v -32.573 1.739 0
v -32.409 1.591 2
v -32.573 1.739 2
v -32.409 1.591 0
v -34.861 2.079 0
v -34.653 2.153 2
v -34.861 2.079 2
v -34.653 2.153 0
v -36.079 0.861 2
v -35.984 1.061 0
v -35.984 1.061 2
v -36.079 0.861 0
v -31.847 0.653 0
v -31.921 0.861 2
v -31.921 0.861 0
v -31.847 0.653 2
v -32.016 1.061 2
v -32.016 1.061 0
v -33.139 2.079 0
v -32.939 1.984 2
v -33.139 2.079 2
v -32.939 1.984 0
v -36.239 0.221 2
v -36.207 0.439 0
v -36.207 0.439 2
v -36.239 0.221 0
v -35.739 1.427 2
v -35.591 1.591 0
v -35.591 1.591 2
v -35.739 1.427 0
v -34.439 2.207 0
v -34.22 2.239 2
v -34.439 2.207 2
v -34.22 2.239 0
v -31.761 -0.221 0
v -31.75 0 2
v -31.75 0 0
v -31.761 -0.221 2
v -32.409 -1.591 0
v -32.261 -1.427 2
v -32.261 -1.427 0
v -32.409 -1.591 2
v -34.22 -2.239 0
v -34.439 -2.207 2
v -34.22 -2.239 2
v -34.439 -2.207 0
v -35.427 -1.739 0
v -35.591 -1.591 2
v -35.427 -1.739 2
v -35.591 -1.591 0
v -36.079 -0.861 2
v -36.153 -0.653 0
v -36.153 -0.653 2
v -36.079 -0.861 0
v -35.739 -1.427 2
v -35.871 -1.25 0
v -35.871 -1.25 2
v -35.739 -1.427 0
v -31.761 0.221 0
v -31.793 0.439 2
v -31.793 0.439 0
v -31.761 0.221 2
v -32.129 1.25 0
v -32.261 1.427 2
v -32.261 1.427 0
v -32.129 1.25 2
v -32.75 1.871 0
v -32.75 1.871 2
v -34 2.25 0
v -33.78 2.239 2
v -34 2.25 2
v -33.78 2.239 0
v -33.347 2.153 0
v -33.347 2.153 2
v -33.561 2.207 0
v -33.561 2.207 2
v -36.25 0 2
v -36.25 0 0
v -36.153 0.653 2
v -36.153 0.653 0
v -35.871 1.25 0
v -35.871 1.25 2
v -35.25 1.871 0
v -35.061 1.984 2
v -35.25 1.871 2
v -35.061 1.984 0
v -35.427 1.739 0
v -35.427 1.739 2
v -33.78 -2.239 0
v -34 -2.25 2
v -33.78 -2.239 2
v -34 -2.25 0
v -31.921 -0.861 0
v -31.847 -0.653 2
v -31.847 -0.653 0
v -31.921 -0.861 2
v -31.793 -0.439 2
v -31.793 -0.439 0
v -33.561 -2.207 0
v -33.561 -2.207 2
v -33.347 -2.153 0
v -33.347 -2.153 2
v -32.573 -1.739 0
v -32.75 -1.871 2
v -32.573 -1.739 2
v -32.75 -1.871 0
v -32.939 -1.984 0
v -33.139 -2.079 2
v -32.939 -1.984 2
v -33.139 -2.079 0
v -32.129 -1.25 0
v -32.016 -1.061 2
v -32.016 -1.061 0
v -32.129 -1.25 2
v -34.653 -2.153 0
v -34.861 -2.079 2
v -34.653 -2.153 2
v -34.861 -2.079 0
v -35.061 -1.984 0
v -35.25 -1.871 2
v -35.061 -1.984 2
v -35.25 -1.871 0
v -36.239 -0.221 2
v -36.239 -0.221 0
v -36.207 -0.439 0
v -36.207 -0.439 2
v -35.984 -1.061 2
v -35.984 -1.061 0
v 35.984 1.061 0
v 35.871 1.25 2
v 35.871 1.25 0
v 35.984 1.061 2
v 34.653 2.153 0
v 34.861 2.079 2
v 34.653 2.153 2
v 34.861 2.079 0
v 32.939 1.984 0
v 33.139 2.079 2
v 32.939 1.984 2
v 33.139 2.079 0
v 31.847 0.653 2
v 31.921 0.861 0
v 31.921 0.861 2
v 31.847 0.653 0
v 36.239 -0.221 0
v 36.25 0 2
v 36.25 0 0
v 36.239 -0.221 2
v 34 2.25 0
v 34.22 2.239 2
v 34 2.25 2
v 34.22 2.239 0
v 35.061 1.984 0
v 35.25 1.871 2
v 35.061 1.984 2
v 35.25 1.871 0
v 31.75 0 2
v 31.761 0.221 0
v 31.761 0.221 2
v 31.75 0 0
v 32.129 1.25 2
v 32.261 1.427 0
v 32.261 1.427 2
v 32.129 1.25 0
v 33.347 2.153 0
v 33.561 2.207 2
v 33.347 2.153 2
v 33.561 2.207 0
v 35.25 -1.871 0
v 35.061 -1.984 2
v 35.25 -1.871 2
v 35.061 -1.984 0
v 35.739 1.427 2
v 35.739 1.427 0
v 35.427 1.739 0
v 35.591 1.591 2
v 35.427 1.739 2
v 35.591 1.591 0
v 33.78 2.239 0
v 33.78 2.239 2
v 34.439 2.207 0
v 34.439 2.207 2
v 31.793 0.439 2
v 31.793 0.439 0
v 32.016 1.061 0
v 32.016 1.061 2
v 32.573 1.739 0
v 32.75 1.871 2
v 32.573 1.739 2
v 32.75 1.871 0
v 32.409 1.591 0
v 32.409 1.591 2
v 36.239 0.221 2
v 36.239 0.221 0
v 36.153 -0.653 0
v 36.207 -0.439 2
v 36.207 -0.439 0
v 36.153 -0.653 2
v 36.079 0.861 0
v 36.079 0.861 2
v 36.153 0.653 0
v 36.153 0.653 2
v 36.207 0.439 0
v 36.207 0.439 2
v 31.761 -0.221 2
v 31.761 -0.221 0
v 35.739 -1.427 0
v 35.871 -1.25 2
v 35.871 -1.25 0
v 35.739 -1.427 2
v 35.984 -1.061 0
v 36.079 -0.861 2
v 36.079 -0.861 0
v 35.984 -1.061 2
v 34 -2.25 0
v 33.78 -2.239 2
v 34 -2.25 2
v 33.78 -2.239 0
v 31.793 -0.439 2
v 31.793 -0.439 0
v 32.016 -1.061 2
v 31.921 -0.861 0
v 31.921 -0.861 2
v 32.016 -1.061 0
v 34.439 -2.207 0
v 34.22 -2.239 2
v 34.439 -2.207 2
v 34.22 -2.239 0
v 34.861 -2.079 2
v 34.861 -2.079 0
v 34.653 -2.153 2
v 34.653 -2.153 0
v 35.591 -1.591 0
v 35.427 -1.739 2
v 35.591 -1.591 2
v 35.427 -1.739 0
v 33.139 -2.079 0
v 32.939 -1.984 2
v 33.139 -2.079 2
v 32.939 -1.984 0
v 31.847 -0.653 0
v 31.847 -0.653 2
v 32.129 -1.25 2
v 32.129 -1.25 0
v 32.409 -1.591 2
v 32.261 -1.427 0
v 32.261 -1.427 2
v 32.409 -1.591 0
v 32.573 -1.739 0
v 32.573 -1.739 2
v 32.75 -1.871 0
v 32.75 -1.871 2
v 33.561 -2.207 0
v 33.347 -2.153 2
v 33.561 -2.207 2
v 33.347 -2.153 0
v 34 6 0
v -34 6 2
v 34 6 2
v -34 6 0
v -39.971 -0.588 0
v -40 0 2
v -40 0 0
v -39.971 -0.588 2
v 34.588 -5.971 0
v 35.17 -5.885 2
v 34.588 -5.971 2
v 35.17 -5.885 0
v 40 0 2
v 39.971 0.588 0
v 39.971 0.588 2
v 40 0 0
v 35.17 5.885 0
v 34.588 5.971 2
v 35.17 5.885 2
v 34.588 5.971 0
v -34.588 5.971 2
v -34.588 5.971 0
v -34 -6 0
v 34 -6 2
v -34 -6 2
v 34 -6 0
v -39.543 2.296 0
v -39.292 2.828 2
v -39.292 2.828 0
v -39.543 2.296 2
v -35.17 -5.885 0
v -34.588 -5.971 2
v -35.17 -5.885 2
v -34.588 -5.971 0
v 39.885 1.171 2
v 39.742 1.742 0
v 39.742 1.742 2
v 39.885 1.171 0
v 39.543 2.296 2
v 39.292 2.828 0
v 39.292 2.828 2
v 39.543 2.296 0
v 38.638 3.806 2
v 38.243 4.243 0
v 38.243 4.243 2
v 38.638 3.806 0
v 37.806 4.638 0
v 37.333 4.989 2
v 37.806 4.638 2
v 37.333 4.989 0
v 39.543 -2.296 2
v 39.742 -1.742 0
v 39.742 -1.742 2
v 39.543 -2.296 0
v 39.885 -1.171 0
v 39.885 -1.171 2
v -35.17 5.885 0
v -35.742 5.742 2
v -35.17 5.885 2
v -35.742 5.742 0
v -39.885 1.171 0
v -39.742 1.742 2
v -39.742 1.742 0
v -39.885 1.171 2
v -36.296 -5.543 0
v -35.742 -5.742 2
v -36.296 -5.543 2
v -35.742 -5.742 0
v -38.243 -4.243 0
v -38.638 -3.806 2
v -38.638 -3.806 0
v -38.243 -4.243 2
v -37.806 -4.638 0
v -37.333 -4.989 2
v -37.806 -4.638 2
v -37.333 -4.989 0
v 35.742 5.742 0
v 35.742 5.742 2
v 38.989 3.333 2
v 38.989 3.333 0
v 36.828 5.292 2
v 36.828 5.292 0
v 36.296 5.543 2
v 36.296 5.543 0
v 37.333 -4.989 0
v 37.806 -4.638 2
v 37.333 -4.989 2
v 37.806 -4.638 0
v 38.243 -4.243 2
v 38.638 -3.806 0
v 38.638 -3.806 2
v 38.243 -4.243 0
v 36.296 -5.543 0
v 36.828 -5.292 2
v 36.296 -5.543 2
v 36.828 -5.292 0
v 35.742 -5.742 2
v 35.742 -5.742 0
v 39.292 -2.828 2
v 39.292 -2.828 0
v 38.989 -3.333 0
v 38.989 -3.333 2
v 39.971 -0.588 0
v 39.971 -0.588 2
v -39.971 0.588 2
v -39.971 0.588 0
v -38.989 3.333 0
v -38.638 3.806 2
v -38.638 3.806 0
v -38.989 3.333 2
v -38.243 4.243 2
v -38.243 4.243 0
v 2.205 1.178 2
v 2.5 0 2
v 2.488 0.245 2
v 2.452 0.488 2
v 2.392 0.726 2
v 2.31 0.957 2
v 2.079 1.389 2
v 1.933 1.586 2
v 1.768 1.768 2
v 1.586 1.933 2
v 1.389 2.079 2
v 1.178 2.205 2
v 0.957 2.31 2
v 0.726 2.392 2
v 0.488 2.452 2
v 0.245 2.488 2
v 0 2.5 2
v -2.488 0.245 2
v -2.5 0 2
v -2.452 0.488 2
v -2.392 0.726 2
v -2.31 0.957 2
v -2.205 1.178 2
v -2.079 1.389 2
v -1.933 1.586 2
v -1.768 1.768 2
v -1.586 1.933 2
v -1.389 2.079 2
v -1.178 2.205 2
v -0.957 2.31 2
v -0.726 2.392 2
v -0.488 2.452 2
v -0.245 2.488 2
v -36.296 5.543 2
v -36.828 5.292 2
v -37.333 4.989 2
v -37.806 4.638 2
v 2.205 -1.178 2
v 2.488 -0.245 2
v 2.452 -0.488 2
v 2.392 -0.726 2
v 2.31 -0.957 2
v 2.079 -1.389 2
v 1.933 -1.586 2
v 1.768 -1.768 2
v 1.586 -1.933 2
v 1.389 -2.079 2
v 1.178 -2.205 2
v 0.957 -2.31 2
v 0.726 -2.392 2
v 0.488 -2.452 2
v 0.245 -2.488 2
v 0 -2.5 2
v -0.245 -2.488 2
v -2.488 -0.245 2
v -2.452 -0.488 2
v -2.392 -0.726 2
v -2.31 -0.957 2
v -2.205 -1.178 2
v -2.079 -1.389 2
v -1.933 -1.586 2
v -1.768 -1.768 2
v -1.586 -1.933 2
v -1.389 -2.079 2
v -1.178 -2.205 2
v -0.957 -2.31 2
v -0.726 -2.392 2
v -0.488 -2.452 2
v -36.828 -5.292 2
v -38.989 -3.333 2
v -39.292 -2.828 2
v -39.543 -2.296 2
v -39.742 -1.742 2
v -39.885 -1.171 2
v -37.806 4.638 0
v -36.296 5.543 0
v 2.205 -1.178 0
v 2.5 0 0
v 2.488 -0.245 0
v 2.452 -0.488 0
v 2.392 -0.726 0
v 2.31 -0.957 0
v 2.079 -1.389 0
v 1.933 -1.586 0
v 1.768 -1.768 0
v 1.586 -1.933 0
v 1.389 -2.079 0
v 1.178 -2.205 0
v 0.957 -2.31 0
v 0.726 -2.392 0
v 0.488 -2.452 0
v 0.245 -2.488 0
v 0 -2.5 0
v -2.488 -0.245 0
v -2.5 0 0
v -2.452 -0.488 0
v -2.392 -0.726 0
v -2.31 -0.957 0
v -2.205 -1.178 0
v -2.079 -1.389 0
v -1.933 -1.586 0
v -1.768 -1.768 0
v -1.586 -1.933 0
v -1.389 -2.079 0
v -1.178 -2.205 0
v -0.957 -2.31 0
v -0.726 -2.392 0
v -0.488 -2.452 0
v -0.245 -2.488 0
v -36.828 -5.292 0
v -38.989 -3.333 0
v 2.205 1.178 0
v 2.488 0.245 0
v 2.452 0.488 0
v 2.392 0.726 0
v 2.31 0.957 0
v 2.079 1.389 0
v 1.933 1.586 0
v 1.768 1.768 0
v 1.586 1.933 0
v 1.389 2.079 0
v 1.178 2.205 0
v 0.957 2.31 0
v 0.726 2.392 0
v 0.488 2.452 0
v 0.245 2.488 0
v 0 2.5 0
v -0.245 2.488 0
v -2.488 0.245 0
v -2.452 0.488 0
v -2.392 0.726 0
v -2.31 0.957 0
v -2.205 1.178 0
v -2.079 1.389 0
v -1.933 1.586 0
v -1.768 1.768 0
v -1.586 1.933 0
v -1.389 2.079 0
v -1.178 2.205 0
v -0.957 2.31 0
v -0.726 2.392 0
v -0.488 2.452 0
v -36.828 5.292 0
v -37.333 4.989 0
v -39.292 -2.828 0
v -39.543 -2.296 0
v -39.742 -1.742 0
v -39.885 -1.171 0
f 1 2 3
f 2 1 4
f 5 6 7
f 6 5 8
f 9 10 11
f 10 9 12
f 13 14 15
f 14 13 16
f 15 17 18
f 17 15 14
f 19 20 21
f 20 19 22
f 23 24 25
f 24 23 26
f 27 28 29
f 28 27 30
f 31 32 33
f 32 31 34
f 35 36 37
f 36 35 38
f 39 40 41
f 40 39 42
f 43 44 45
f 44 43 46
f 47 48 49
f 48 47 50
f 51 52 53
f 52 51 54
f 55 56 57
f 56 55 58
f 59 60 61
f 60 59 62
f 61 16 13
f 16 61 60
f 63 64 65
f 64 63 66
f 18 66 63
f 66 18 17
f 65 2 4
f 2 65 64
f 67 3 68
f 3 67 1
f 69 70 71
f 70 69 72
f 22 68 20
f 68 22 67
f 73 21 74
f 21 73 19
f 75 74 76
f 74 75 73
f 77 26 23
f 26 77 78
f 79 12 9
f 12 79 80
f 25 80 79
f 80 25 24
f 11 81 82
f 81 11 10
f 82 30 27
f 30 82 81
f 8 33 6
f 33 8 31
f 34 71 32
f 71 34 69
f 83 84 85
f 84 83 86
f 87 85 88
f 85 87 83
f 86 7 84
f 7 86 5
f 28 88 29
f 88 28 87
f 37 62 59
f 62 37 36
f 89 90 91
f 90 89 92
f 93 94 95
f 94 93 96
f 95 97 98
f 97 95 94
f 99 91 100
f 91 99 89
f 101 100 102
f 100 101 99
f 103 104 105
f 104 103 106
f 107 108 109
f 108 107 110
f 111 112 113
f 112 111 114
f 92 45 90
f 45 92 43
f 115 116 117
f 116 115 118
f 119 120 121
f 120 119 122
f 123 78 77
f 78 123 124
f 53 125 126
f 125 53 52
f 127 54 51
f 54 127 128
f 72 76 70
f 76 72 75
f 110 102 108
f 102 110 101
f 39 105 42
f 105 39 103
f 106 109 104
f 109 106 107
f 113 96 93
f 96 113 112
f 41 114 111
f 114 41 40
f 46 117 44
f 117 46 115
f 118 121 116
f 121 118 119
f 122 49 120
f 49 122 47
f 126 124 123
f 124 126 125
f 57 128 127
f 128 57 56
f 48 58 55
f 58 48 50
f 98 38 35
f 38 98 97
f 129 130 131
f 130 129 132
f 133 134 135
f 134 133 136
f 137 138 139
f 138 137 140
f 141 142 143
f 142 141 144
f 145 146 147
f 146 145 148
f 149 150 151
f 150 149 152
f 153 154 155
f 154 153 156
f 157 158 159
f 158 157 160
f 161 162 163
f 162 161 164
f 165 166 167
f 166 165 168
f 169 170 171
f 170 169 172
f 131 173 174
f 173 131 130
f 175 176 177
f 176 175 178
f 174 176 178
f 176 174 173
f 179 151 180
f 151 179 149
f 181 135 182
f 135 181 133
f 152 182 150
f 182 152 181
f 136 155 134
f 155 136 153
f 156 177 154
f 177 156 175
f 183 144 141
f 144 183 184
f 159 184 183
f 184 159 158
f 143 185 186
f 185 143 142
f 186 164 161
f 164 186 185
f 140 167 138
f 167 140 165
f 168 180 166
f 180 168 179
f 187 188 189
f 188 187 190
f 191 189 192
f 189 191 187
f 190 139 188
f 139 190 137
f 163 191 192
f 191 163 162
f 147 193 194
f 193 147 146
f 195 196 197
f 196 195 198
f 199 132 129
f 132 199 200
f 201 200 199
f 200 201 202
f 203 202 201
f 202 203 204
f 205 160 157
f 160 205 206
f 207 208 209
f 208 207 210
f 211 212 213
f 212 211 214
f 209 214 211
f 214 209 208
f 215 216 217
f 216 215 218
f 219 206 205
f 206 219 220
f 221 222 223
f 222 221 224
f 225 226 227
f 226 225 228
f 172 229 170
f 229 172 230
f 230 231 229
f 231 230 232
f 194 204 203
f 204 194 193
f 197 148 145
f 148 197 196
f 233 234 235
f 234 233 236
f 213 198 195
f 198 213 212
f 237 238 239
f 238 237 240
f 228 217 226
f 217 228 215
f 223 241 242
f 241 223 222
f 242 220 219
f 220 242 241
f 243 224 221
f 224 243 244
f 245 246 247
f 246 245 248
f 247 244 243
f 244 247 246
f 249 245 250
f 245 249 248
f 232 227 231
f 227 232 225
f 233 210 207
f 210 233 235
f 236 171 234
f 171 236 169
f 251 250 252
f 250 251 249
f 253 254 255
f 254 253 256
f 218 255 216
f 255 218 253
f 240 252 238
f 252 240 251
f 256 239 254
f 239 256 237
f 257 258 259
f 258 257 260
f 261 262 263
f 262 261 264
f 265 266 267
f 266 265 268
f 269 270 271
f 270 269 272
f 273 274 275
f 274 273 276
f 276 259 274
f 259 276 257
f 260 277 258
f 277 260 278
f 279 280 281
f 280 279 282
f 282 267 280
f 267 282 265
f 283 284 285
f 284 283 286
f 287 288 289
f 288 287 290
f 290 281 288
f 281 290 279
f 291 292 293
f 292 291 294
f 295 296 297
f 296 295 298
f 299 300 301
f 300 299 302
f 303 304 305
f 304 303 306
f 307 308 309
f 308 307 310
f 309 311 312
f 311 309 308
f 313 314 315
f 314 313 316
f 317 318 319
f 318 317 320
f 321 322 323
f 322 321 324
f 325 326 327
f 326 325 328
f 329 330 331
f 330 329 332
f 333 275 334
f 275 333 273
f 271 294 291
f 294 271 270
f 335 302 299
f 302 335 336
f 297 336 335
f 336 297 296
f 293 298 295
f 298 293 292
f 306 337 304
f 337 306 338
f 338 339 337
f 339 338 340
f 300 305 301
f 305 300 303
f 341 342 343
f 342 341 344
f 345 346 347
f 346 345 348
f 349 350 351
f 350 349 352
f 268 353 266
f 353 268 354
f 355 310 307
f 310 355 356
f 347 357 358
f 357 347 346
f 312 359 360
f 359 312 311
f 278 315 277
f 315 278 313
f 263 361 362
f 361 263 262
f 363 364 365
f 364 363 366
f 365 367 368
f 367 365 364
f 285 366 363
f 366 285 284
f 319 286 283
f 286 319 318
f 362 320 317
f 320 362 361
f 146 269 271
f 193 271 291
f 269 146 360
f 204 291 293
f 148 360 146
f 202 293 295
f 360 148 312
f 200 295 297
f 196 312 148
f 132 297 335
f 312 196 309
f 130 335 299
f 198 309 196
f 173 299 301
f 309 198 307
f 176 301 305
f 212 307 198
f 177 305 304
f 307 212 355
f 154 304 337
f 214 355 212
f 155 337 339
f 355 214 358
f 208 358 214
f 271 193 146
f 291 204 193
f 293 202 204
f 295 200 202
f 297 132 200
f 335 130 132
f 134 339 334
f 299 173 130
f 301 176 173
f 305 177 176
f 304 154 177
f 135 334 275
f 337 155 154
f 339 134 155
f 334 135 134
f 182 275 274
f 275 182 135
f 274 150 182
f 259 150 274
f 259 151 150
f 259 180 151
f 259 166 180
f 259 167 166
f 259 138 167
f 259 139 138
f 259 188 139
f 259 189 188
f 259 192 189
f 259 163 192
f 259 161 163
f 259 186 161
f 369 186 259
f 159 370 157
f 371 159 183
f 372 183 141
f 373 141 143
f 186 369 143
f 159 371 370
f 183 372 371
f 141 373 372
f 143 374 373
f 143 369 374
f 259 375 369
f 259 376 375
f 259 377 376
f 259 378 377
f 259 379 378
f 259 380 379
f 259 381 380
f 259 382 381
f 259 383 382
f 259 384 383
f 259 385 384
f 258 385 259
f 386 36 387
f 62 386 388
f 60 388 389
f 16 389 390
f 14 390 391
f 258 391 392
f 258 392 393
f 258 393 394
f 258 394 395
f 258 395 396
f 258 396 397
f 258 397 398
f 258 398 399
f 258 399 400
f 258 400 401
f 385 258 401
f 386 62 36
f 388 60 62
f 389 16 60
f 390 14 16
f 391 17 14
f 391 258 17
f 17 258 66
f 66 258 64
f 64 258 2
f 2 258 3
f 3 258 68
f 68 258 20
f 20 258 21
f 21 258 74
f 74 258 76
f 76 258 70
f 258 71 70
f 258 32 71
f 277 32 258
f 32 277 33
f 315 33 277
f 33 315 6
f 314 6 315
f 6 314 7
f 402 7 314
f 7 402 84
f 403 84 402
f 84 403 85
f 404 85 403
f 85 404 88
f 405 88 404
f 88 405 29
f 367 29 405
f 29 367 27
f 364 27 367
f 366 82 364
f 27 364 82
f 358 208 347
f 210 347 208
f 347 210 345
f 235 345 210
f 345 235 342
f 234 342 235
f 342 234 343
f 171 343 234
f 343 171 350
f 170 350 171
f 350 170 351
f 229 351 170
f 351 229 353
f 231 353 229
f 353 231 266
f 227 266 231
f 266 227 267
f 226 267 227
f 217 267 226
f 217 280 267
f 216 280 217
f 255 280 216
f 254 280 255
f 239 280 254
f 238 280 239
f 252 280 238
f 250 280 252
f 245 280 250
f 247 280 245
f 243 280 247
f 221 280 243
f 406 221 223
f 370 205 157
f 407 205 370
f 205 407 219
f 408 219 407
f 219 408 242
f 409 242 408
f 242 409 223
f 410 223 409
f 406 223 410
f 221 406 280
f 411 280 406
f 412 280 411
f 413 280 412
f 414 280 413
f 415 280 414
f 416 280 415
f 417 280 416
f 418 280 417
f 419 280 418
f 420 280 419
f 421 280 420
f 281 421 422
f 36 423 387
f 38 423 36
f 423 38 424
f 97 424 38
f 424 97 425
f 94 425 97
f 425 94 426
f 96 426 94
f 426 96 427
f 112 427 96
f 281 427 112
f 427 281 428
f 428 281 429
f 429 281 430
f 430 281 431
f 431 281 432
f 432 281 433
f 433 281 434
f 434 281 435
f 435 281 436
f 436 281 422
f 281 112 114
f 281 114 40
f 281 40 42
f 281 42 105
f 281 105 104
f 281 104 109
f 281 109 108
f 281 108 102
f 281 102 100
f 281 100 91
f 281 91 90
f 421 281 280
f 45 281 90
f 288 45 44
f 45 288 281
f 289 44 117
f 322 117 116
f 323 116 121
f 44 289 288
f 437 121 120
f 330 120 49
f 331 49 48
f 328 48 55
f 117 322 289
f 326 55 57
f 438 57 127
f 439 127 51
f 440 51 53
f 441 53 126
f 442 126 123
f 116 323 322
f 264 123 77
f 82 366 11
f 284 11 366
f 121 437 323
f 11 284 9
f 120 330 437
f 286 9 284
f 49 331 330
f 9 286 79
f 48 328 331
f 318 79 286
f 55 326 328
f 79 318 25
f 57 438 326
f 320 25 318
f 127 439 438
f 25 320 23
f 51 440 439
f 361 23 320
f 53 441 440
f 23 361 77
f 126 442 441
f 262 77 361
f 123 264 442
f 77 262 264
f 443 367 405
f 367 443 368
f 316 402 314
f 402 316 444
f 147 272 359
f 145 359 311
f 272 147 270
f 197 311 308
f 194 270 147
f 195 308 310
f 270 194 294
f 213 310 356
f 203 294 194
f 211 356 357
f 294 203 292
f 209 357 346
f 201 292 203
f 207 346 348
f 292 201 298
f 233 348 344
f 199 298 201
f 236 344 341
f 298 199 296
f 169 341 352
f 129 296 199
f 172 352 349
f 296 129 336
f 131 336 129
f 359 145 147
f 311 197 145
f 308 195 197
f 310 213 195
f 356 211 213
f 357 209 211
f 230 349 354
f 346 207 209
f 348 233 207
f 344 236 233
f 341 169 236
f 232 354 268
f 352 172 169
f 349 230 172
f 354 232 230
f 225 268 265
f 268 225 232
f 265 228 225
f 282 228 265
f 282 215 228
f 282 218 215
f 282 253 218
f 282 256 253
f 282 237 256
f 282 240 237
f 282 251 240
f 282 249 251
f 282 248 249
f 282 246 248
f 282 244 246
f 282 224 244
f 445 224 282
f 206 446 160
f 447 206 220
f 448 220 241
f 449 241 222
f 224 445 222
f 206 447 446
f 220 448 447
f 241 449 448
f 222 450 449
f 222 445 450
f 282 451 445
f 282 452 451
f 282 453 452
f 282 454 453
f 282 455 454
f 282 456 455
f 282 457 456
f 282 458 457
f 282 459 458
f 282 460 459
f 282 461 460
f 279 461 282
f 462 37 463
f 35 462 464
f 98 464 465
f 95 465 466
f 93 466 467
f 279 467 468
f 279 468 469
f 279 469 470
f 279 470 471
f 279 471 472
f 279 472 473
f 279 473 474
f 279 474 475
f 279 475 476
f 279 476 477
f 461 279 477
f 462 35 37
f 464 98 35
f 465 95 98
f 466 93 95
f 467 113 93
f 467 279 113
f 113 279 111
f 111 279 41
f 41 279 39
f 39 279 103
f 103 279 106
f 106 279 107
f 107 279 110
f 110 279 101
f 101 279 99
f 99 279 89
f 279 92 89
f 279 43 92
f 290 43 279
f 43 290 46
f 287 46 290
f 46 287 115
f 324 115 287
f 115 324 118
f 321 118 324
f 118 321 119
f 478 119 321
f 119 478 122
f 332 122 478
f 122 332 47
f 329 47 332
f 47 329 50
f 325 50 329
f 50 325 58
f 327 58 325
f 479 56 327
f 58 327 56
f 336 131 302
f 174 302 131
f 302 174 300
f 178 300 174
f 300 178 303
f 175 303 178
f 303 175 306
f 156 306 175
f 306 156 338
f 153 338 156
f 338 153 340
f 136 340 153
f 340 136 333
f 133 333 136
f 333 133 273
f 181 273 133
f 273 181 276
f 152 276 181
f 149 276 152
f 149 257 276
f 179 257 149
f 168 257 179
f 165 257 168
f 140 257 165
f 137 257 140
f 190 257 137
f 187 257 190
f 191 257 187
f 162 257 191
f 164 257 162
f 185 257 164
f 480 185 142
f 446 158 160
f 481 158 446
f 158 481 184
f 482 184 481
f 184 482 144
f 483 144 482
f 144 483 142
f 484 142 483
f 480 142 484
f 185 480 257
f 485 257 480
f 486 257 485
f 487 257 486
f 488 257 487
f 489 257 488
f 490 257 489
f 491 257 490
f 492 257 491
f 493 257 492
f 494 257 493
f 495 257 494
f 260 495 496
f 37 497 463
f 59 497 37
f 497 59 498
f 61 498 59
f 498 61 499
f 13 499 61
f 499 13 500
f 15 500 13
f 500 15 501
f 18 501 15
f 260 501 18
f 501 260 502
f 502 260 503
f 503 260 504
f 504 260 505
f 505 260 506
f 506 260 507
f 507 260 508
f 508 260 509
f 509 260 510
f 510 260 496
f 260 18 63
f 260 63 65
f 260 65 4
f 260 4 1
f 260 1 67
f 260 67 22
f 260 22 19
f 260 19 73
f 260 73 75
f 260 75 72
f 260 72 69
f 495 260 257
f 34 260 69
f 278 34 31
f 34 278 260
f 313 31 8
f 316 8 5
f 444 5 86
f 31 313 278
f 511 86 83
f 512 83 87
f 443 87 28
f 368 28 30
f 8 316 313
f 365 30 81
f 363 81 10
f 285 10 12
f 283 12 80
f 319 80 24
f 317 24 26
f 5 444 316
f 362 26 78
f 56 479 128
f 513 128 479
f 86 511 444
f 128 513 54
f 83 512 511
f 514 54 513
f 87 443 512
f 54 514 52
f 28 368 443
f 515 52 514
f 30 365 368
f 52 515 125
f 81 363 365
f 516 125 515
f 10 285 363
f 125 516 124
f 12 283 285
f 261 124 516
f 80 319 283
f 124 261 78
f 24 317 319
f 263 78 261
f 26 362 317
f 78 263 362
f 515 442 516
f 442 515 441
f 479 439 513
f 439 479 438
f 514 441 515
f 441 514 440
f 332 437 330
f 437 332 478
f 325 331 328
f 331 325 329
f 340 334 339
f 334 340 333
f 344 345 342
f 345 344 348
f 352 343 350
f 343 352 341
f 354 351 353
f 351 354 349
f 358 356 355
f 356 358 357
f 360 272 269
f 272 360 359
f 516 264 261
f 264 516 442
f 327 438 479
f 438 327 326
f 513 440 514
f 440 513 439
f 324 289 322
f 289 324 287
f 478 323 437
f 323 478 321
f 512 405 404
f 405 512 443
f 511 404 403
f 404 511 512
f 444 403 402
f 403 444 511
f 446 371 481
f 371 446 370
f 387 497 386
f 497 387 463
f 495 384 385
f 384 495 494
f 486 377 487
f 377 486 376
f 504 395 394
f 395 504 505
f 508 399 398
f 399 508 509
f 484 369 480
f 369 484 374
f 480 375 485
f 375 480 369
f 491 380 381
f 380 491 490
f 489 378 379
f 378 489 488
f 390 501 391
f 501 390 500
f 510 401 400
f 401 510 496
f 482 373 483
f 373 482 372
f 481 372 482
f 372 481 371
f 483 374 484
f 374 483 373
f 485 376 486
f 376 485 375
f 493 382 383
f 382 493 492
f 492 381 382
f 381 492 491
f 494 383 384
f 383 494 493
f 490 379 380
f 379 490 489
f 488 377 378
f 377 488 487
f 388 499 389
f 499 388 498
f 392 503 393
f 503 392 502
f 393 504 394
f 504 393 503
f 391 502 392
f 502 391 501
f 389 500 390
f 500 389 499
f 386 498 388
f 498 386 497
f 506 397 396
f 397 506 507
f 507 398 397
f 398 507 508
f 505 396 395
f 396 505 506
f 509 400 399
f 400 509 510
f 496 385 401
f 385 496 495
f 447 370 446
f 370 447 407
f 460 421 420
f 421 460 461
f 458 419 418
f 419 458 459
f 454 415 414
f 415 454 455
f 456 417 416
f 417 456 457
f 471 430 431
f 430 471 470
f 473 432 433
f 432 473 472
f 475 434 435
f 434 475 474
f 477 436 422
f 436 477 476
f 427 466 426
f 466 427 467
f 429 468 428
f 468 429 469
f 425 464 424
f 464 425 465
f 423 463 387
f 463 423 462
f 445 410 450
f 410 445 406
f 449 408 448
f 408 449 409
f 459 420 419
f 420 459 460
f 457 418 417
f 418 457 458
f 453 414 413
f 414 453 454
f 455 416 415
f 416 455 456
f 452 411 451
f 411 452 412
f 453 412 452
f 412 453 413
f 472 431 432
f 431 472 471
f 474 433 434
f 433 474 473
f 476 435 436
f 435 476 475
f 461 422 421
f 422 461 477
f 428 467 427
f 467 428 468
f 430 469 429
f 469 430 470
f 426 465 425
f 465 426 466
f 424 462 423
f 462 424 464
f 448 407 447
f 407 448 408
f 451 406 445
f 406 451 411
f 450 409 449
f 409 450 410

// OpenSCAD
/*
  Drilling template for the round twist-lock ceiling mount.

  The two outer guides match the mount's 68 mm screw-center spacing.
  The center guide marks the cable-hole location.
*/

$fn = 64;

screw_radius = 34;
screw_hole_diameter = 4.5;
cable_hole_diameter = 5;

template_width = 12;
template_thickness = 2;

difference() {
    hull() {
        for (x = [-screw_radius, screw_radius]) {
            translate([x, 0, 0])
                cylinder(
                    h = template_thickness,
                    d = template_width
                );
        }
    }

    for (x = [-screw_radius, screw_radius]) {
        translate([x, 0, -0.1])
            cylinder(
                h = template_thickness + 0.2,
                d = screw_hole_diameter
            );
    }

    translate([0, 0, -0.1])
        cylinder(
            h = template_thickness + 0.2,
            d = cable_hole_diameter
        );
}
